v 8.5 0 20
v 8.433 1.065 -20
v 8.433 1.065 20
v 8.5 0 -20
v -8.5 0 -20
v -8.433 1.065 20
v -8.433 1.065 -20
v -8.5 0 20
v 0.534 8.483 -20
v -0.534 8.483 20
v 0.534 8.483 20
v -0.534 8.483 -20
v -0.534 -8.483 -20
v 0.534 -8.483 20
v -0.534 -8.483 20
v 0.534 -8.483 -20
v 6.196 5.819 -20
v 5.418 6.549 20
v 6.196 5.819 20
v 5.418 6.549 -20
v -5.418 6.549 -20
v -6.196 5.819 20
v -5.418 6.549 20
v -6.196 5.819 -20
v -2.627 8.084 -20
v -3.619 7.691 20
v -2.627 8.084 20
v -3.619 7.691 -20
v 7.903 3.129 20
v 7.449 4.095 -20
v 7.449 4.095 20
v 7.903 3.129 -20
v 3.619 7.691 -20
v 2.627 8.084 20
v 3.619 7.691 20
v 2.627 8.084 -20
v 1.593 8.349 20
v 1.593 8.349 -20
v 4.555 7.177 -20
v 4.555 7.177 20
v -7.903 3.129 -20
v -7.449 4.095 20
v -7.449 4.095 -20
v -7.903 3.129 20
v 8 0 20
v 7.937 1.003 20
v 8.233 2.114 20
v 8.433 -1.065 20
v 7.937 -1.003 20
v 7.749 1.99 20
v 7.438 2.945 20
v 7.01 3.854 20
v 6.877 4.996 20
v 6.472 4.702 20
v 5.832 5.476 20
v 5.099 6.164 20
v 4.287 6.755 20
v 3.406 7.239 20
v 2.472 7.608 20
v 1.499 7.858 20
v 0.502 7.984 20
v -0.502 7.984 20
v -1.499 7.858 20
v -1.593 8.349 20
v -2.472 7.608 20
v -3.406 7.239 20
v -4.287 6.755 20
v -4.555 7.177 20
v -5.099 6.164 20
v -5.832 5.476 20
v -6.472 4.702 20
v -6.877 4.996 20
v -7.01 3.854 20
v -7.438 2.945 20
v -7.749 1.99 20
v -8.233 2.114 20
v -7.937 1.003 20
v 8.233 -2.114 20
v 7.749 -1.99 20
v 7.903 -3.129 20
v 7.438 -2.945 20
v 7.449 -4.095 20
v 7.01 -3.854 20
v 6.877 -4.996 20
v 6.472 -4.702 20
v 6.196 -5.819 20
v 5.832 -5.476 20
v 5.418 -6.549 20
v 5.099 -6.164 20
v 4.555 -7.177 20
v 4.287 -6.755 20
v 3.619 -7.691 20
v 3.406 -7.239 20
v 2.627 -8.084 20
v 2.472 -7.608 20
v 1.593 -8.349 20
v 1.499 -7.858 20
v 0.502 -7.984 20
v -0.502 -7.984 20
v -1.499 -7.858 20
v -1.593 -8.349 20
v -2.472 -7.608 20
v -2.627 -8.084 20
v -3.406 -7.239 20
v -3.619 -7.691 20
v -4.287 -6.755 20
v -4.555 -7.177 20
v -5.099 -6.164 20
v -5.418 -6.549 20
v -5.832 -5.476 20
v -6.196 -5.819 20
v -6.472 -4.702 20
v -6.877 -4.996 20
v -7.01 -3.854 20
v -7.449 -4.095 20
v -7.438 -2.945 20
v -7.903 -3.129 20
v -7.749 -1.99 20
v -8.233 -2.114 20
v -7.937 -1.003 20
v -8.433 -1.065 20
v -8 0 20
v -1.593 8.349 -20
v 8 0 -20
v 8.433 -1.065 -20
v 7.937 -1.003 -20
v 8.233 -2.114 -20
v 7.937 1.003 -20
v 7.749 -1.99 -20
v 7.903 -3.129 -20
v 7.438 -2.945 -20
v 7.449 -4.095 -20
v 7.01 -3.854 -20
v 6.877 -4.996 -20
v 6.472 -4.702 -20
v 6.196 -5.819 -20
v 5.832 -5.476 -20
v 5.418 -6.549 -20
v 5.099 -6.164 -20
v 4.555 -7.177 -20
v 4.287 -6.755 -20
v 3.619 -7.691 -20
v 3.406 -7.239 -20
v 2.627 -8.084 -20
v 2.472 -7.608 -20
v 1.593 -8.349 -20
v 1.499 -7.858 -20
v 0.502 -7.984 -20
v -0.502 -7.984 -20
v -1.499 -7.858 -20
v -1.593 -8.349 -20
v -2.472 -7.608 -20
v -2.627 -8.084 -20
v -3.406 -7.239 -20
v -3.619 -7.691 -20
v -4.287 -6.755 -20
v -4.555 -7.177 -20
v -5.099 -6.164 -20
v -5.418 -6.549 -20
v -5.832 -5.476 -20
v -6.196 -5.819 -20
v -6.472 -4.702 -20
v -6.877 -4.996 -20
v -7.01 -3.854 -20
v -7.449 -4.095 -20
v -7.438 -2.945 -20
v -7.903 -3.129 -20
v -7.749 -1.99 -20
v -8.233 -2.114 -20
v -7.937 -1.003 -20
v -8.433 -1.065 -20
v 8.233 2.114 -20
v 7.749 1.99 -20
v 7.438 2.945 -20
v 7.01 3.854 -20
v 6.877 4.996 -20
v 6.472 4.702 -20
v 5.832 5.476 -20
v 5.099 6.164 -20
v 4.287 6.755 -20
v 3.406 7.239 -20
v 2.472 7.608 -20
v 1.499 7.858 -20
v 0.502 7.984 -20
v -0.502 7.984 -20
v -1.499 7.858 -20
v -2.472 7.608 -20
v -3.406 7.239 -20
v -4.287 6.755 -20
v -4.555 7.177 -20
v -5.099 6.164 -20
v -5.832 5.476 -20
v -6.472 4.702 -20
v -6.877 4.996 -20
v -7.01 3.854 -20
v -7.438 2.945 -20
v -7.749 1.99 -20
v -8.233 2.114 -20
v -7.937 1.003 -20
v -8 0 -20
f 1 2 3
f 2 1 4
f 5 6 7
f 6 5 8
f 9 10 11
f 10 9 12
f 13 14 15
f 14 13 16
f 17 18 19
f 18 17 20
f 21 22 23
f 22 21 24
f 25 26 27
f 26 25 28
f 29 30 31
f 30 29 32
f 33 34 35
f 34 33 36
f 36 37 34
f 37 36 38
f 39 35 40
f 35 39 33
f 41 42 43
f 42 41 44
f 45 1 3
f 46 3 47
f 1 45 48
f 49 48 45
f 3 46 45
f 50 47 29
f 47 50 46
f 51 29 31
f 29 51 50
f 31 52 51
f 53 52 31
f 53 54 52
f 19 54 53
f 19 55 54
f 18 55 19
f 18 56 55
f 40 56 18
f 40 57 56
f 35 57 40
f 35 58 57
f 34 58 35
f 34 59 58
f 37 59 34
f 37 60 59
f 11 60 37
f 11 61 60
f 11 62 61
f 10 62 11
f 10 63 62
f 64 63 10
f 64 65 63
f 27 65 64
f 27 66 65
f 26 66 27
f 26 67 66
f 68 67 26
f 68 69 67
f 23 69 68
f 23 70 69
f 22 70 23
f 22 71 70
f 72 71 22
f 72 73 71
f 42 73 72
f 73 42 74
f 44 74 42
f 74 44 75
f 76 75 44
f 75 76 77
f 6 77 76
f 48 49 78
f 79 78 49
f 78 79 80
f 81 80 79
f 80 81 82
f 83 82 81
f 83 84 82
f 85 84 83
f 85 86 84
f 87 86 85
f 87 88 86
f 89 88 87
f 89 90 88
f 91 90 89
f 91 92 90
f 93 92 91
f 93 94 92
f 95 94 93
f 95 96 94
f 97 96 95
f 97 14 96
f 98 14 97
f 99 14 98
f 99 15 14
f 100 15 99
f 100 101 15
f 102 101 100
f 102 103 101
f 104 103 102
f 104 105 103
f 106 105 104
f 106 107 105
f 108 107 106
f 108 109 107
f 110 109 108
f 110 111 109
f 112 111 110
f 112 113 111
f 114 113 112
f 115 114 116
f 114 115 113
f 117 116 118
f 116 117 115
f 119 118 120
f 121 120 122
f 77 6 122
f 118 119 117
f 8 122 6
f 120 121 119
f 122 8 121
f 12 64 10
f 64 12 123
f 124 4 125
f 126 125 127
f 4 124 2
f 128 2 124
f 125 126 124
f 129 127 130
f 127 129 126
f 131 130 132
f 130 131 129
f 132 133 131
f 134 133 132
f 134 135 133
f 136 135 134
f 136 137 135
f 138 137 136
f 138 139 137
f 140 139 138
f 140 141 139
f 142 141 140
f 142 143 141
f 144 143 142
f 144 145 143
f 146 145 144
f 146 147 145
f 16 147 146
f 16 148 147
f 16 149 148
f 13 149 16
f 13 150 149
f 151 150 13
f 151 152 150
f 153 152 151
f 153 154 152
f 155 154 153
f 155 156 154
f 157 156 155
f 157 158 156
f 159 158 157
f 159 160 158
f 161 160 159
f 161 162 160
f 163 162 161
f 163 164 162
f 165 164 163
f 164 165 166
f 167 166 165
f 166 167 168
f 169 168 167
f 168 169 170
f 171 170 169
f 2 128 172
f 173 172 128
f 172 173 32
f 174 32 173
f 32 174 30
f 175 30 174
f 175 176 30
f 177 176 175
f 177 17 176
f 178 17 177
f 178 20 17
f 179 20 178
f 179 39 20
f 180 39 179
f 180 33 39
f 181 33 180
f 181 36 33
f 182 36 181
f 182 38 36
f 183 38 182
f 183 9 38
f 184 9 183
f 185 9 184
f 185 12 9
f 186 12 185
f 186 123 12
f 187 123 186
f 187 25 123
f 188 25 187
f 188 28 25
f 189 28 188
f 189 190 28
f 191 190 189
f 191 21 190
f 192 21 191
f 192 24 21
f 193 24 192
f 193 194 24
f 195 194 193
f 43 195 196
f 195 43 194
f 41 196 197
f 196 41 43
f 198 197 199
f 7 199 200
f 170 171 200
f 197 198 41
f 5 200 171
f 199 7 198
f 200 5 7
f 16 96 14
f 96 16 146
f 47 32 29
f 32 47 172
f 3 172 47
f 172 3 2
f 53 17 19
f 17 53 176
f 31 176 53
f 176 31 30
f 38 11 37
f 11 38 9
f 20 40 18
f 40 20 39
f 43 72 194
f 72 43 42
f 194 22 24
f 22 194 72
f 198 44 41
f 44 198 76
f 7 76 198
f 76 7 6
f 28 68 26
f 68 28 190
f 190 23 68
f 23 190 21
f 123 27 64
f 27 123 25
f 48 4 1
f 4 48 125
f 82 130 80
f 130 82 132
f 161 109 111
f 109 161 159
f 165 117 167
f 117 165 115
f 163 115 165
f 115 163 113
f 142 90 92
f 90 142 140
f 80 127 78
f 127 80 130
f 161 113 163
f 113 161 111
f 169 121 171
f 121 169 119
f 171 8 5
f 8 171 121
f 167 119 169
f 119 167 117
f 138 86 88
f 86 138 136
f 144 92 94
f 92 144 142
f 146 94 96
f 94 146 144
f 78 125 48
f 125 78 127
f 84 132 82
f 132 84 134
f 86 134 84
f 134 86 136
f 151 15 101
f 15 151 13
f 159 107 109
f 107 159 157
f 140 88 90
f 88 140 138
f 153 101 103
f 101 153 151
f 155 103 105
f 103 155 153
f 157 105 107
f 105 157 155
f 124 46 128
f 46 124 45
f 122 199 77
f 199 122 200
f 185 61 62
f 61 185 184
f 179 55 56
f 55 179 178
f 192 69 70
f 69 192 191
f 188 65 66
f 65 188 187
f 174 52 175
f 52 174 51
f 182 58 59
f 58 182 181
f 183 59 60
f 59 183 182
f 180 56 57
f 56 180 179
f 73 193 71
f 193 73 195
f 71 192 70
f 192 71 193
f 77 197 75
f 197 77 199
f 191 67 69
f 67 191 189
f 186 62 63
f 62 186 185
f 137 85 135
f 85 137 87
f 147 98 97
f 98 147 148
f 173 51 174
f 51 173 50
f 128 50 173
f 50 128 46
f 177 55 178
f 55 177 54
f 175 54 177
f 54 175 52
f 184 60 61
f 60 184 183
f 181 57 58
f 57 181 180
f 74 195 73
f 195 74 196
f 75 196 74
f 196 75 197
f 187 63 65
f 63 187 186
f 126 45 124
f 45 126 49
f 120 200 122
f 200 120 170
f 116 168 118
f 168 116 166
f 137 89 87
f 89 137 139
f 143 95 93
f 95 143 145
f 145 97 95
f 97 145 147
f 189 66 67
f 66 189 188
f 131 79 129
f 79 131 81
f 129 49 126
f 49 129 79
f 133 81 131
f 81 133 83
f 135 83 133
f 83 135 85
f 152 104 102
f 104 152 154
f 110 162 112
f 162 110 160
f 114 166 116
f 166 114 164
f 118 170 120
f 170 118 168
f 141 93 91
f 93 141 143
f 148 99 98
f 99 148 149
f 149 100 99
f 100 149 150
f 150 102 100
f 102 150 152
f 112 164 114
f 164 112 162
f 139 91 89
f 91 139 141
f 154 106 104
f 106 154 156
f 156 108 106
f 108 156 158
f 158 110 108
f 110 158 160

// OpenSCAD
$fn = 50;


difference() {
	union() {
		translate(v = [0, 0, -20.0000000000]) {
			cylinder(h = 40, r = 8.5000000000);
		}
	}
	union() {
		translate(v = [0, 0, -100.0000000000]) {
			cylinder(h = 200, r = 8);
		}
	}
}
